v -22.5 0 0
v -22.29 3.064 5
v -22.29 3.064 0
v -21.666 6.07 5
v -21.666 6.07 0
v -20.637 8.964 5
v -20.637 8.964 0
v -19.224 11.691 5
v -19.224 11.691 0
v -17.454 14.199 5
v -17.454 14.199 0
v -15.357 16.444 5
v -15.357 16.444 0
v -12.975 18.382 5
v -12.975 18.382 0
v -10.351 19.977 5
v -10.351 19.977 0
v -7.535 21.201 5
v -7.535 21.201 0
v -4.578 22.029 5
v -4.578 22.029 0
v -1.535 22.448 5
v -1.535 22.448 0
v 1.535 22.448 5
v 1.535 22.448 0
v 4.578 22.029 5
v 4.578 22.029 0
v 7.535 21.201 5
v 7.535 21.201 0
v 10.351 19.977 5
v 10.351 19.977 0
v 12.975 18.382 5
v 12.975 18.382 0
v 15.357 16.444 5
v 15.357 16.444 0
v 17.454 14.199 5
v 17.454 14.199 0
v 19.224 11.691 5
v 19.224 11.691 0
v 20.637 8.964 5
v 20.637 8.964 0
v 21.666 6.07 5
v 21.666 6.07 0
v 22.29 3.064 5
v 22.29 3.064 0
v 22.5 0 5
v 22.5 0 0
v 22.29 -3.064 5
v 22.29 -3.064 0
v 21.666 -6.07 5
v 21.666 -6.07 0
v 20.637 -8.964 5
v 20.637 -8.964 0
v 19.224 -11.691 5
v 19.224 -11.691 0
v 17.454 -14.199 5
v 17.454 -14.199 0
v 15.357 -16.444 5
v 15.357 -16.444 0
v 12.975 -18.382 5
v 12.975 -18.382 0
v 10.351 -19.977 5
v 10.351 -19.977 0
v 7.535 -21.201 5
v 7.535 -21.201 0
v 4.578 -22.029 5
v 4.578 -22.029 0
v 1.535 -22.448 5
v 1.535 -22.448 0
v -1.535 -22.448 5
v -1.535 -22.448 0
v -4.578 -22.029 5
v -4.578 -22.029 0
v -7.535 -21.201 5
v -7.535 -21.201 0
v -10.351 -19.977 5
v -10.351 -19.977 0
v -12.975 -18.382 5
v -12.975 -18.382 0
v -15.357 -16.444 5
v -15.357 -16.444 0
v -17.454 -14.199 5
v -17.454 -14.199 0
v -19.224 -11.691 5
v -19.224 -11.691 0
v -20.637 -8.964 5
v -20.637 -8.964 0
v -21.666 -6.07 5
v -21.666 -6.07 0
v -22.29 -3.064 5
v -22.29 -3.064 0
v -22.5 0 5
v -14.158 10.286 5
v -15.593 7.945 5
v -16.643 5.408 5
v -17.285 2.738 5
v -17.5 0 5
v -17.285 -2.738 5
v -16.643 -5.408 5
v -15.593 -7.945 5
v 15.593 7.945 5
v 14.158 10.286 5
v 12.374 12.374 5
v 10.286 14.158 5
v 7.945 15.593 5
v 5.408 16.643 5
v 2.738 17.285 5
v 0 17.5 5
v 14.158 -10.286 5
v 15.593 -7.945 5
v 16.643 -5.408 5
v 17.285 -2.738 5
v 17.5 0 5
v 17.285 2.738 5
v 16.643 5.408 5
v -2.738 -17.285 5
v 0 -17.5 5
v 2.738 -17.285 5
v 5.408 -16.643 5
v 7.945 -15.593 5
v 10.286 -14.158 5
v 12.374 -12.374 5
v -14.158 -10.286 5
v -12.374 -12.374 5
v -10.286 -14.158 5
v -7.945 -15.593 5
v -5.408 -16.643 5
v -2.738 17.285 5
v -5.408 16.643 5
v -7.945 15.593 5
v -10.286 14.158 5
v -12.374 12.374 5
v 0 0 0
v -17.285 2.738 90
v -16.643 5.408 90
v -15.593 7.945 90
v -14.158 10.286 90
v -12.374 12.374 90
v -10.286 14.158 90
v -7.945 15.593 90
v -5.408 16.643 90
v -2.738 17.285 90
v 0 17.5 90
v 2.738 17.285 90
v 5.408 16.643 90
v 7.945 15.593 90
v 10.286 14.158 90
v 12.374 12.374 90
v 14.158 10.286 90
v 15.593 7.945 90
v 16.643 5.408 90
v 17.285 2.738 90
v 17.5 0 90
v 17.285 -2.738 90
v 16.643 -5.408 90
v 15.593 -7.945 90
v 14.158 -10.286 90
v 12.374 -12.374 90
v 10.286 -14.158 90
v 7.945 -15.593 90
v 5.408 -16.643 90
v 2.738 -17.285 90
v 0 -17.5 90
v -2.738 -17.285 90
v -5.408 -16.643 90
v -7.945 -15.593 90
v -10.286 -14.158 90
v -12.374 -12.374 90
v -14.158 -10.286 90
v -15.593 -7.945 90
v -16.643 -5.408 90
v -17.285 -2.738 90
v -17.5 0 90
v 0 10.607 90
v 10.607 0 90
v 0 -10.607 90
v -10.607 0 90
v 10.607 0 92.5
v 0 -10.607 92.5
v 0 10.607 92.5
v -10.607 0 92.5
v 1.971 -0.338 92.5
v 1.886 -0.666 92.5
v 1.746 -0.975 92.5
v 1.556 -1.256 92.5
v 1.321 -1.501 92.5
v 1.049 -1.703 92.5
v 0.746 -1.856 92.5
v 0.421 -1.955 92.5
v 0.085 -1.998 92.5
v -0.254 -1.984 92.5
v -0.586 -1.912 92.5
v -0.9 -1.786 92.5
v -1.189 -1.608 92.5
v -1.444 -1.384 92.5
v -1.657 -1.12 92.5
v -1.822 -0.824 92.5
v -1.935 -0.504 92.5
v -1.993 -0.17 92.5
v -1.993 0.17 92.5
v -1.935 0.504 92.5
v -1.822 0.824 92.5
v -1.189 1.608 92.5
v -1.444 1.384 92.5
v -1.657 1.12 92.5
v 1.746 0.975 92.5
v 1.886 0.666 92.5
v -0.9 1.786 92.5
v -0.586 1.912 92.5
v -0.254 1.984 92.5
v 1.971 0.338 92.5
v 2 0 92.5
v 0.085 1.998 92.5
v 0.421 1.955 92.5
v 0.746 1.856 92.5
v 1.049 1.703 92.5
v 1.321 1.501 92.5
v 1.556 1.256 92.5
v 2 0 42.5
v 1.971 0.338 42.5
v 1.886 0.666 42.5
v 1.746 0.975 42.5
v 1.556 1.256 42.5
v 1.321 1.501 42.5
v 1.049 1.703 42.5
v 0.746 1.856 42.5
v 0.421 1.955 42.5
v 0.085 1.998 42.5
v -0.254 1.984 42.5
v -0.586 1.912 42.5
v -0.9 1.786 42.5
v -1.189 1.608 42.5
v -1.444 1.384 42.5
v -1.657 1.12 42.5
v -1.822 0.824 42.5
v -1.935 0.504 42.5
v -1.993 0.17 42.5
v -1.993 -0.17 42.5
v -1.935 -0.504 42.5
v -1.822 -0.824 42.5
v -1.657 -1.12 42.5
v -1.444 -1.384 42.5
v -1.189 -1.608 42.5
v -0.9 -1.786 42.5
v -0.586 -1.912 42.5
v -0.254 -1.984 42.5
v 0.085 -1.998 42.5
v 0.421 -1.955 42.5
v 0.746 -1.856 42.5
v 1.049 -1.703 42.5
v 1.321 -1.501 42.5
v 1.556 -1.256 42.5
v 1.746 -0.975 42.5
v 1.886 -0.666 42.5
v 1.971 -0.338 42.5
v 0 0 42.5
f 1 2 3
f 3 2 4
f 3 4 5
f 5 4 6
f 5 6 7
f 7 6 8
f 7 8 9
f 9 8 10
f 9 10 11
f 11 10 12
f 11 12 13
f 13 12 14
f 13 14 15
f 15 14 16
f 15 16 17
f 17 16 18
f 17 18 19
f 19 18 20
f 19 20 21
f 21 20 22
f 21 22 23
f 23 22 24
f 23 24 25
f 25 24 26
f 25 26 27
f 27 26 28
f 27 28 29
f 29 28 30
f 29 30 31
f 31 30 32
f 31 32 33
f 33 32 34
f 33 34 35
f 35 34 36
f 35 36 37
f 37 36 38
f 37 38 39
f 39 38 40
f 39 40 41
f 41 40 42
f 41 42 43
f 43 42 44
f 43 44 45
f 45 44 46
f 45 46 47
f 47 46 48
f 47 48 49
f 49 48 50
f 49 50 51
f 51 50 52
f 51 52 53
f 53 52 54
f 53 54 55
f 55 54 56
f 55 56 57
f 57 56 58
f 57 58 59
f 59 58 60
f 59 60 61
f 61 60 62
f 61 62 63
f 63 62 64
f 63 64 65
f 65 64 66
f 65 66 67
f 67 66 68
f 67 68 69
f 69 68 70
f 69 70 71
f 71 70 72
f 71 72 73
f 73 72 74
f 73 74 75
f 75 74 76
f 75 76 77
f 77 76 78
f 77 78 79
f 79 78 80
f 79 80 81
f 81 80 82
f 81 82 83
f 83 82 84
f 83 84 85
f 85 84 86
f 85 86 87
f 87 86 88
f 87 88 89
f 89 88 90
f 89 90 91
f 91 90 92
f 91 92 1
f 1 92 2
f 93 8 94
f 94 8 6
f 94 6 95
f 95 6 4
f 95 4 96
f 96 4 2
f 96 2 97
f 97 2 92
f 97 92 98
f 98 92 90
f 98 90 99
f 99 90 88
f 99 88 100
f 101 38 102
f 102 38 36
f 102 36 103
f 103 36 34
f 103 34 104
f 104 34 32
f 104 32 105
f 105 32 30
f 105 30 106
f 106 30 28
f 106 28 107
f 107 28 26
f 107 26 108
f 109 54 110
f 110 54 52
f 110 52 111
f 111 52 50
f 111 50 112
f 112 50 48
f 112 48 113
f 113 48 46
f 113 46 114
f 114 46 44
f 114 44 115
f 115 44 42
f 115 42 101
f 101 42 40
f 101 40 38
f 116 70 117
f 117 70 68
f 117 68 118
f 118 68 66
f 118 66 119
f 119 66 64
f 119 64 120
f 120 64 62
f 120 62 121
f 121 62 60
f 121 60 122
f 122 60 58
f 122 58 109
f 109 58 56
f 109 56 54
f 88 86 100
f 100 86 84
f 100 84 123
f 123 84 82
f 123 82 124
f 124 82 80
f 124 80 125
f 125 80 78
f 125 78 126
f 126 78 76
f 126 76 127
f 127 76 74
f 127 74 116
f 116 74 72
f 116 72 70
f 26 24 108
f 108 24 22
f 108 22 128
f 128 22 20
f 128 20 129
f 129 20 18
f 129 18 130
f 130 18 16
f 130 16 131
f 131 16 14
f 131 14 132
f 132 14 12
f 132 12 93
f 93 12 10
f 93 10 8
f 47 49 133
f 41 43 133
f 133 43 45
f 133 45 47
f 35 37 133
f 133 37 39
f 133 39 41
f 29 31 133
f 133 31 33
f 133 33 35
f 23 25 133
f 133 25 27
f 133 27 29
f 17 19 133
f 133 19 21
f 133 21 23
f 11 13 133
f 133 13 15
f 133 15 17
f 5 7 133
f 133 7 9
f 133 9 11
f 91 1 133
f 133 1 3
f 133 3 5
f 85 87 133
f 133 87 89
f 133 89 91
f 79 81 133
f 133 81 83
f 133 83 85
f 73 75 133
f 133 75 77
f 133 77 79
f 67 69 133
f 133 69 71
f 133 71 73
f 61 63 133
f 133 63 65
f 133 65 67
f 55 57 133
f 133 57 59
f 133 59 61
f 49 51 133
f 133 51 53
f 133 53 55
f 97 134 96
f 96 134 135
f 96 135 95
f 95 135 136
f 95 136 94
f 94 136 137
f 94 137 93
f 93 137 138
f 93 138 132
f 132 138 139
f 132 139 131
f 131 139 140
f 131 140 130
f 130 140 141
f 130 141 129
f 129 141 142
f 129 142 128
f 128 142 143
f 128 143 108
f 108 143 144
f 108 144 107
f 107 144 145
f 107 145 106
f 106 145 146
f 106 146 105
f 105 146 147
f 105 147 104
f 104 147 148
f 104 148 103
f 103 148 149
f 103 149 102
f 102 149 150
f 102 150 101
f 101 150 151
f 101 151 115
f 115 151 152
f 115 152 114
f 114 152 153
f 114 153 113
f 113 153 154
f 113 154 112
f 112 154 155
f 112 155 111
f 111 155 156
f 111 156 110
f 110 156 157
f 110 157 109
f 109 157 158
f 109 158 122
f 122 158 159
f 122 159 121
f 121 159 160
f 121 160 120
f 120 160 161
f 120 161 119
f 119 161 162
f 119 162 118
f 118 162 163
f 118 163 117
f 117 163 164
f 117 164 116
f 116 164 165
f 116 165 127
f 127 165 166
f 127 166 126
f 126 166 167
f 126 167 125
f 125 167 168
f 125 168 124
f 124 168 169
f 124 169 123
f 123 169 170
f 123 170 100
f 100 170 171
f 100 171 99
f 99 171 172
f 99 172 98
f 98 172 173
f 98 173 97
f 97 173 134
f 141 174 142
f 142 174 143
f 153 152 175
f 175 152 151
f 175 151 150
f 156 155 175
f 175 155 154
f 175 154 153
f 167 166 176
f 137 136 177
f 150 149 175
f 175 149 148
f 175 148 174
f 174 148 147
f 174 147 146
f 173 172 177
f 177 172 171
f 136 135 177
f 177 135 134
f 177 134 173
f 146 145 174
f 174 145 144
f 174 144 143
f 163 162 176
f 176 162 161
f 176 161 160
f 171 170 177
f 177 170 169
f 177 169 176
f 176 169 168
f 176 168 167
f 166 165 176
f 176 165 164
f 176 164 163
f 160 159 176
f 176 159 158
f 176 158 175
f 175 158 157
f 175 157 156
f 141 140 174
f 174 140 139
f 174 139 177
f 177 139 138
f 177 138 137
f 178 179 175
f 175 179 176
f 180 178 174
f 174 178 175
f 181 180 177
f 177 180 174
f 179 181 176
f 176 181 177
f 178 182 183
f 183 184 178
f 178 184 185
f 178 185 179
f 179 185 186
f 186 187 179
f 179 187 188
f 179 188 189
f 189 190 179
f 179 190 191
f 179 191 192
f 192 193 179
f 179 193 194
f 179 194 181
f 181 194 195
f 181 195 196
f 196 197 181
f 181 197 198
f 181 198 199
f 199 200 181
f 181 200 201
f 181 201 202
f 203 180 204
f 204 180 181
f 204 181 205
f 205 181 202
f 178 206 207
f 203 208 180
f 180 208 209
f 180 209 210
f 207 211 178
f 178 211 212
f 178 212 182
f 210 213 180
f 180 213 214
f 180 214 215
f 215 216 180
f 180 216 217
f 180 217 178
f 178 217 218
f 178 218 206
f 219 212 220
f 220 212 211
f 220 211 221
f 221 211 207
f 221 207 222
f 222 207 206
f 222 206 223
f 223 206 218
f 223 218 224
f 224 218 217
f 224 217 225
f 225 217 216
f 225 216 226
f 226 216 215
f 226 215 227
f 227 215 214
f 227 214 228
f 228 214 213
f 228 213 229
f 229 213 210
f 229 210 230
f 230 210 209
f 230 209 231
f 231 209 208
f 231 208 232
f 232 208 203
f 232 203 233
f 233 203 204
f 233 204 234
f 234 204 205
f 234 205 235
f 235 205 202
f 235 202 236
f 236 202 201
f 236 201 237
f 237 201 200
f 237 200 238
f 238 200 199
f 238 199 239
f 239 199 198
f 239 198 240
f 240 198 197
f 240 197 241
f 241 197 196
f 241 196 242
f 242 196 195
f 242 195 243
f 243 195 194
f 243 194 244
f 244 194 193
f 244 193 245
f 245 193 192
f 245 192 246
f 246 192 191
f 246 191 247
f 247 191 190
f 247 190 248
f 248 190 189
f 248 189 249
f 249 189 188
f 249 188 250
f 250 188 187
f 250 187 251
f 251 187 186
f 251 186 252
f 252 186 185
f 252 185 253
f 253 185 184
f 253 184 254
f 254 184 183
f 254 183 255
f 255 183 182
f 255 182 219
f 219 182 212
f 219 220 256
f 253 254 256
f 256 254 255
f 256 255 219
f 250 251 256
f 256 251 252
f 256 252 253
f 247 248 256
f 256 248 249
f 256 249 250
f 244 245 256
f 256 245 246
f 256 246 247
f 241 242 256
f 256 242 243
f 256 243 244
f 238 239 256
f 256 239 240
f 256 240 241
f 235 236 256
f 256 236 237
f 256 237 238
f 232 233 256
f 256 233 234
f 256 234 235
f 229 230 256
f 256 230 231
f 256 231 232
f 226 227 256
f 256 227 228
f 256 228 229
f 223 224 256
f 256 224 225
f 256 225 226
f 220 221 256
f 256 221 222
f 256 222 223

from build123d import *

# Parameters (mm, degrees)
SKETCH_1_R          = 22.5
EXTRUDE_1_DEPTH     = 5
SKETCH_2_R          = 17.5
EXTRUDE_2_DEPTH     = 85
EXTRUDE_3_DEPTH     = 2.5
SKETCH_4_R          = 2
CUT_EXTRUDE_1_DEPTH = 50


with BuildPart() as part:
    # Эскиз1 → Бобышка-Вытянуть1 (new body)
    with BuildSketch(Plane.XY):
        Circle(SKETCH_1_R)
    extrude(amount=EXTRUDE_1_DEPTH)

    # Эскиз2 → Бобышка-Вытянуть2 (add)
    with BuildSketch(Plane.XY.offset(5)):
        Circle(SKETCH_2_R)
    extrude(amount=EXTRUDE_2_DEPTH)

    # Эскиз3 → Бобышка-Вытянуть3 (add)
    with BuildSketch(Plane.XY.offset(90)):
        Polygon((10.606601718, 0), (0, 10.606601718), (-10.606601718, 0), (0, -10.606601718), align=None)
    extrude(amount=EXTRUDE_3_DEPTH)

    # Эскиз4 → Вырез-Вытянуть1 (cut)
    with BuildSketch(Plane.XY.offset(92.5)):
        Circle(SKETCH_4_R)
    extrude(amount=-CUT_EXTRUDE_1_DEPTH, mode=Mode.SUBTRACT)


solid = part.part
